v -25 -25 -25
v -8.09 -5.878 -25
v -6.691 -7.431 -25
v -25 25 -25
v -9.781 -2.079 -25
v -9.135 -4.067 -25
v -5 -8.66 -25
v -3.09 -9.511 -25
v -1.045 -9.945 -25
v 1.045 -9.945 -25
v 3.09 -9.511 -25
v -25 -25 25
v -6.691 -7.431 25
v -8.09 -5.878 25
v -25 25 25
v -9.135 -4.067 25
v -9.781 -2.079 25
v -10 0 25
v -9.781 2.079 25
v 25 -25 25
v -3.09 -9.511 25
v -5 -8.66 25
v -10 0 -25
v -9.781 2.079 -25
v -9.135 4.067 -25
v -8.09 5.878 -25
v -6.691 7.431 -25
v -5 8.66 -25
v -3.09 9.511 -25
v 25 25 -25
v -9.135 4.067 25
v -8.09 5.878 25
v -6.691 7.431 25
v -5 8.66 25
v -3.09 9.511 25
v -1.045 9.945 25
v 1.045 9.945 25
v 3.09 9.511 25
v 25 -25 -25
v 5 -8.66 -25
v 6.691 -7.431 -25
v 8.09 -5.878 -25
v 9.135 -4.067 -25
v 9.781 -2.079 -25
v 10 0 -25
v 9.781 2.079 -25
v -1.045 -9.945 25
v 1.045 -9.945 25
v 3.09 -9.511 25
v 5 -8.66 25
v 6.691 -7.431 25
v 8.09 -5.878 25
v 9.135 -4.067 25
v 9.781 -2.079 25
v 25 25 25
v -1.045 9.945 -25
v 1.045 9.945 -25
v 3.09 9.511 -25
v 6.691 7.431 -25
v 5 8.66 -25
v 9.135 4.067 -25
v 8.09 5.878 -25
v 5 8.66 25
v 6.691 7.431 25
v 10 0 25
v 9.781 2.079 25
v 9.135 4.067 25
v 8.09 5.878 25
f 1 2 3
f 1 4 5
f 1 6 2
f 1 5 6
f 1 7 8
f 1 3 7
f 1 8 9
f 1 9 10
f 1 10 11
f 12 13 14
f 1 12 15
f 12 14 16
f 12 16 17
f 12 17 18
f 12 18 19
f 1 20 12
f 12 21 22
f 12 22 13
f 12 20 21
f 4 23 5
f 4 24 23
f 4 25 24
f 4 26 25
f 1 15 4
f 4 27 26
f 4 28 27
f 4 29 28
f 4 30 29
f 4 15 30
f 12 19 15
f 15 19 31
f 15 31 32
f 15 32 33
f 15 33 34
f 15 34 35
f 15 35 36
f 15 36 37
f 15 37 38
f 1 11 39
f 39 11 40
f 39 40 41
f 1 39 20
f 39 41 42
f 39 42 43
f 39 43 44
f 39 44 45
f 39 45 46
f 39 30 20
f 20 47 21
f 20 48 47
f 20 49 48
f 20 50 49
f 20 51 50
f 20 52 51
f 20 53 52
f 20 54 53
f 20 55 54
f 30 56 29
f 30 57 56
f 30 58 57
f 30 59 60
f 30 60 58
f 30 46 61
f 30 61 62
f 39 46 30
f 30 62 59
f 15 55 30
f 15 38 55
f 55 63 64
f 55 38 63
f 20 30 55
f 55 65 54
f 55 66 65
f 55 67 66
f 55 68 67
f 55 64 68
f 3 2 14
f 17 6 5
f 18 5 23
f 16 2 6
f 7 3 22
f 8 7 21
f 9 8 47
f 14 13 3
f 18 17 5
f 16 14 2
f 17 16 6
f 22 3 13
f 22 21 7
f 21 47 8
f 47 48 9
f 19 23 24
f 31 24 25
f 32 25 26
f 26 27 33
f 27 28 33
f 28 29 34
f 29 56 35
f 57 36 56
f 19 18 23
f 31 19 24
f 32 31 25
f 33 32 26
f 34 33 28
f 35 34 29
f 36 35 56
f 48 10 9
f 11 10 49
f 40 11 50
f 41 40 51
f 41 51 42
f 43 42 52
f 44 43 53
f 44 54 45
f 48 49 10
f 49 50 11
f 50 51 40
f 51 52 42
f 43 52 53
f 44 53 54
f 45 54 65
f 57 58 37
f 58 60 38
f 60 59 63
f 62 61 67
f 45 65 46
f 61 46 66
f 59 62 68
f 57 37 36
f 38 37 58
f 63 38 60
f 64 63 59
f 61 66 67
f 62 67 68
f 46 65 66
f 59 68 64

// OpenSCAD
difference() {
    cube([50, 50, 50], center = true);
    cylinder(h = 60, r = 10, center = true);
}
